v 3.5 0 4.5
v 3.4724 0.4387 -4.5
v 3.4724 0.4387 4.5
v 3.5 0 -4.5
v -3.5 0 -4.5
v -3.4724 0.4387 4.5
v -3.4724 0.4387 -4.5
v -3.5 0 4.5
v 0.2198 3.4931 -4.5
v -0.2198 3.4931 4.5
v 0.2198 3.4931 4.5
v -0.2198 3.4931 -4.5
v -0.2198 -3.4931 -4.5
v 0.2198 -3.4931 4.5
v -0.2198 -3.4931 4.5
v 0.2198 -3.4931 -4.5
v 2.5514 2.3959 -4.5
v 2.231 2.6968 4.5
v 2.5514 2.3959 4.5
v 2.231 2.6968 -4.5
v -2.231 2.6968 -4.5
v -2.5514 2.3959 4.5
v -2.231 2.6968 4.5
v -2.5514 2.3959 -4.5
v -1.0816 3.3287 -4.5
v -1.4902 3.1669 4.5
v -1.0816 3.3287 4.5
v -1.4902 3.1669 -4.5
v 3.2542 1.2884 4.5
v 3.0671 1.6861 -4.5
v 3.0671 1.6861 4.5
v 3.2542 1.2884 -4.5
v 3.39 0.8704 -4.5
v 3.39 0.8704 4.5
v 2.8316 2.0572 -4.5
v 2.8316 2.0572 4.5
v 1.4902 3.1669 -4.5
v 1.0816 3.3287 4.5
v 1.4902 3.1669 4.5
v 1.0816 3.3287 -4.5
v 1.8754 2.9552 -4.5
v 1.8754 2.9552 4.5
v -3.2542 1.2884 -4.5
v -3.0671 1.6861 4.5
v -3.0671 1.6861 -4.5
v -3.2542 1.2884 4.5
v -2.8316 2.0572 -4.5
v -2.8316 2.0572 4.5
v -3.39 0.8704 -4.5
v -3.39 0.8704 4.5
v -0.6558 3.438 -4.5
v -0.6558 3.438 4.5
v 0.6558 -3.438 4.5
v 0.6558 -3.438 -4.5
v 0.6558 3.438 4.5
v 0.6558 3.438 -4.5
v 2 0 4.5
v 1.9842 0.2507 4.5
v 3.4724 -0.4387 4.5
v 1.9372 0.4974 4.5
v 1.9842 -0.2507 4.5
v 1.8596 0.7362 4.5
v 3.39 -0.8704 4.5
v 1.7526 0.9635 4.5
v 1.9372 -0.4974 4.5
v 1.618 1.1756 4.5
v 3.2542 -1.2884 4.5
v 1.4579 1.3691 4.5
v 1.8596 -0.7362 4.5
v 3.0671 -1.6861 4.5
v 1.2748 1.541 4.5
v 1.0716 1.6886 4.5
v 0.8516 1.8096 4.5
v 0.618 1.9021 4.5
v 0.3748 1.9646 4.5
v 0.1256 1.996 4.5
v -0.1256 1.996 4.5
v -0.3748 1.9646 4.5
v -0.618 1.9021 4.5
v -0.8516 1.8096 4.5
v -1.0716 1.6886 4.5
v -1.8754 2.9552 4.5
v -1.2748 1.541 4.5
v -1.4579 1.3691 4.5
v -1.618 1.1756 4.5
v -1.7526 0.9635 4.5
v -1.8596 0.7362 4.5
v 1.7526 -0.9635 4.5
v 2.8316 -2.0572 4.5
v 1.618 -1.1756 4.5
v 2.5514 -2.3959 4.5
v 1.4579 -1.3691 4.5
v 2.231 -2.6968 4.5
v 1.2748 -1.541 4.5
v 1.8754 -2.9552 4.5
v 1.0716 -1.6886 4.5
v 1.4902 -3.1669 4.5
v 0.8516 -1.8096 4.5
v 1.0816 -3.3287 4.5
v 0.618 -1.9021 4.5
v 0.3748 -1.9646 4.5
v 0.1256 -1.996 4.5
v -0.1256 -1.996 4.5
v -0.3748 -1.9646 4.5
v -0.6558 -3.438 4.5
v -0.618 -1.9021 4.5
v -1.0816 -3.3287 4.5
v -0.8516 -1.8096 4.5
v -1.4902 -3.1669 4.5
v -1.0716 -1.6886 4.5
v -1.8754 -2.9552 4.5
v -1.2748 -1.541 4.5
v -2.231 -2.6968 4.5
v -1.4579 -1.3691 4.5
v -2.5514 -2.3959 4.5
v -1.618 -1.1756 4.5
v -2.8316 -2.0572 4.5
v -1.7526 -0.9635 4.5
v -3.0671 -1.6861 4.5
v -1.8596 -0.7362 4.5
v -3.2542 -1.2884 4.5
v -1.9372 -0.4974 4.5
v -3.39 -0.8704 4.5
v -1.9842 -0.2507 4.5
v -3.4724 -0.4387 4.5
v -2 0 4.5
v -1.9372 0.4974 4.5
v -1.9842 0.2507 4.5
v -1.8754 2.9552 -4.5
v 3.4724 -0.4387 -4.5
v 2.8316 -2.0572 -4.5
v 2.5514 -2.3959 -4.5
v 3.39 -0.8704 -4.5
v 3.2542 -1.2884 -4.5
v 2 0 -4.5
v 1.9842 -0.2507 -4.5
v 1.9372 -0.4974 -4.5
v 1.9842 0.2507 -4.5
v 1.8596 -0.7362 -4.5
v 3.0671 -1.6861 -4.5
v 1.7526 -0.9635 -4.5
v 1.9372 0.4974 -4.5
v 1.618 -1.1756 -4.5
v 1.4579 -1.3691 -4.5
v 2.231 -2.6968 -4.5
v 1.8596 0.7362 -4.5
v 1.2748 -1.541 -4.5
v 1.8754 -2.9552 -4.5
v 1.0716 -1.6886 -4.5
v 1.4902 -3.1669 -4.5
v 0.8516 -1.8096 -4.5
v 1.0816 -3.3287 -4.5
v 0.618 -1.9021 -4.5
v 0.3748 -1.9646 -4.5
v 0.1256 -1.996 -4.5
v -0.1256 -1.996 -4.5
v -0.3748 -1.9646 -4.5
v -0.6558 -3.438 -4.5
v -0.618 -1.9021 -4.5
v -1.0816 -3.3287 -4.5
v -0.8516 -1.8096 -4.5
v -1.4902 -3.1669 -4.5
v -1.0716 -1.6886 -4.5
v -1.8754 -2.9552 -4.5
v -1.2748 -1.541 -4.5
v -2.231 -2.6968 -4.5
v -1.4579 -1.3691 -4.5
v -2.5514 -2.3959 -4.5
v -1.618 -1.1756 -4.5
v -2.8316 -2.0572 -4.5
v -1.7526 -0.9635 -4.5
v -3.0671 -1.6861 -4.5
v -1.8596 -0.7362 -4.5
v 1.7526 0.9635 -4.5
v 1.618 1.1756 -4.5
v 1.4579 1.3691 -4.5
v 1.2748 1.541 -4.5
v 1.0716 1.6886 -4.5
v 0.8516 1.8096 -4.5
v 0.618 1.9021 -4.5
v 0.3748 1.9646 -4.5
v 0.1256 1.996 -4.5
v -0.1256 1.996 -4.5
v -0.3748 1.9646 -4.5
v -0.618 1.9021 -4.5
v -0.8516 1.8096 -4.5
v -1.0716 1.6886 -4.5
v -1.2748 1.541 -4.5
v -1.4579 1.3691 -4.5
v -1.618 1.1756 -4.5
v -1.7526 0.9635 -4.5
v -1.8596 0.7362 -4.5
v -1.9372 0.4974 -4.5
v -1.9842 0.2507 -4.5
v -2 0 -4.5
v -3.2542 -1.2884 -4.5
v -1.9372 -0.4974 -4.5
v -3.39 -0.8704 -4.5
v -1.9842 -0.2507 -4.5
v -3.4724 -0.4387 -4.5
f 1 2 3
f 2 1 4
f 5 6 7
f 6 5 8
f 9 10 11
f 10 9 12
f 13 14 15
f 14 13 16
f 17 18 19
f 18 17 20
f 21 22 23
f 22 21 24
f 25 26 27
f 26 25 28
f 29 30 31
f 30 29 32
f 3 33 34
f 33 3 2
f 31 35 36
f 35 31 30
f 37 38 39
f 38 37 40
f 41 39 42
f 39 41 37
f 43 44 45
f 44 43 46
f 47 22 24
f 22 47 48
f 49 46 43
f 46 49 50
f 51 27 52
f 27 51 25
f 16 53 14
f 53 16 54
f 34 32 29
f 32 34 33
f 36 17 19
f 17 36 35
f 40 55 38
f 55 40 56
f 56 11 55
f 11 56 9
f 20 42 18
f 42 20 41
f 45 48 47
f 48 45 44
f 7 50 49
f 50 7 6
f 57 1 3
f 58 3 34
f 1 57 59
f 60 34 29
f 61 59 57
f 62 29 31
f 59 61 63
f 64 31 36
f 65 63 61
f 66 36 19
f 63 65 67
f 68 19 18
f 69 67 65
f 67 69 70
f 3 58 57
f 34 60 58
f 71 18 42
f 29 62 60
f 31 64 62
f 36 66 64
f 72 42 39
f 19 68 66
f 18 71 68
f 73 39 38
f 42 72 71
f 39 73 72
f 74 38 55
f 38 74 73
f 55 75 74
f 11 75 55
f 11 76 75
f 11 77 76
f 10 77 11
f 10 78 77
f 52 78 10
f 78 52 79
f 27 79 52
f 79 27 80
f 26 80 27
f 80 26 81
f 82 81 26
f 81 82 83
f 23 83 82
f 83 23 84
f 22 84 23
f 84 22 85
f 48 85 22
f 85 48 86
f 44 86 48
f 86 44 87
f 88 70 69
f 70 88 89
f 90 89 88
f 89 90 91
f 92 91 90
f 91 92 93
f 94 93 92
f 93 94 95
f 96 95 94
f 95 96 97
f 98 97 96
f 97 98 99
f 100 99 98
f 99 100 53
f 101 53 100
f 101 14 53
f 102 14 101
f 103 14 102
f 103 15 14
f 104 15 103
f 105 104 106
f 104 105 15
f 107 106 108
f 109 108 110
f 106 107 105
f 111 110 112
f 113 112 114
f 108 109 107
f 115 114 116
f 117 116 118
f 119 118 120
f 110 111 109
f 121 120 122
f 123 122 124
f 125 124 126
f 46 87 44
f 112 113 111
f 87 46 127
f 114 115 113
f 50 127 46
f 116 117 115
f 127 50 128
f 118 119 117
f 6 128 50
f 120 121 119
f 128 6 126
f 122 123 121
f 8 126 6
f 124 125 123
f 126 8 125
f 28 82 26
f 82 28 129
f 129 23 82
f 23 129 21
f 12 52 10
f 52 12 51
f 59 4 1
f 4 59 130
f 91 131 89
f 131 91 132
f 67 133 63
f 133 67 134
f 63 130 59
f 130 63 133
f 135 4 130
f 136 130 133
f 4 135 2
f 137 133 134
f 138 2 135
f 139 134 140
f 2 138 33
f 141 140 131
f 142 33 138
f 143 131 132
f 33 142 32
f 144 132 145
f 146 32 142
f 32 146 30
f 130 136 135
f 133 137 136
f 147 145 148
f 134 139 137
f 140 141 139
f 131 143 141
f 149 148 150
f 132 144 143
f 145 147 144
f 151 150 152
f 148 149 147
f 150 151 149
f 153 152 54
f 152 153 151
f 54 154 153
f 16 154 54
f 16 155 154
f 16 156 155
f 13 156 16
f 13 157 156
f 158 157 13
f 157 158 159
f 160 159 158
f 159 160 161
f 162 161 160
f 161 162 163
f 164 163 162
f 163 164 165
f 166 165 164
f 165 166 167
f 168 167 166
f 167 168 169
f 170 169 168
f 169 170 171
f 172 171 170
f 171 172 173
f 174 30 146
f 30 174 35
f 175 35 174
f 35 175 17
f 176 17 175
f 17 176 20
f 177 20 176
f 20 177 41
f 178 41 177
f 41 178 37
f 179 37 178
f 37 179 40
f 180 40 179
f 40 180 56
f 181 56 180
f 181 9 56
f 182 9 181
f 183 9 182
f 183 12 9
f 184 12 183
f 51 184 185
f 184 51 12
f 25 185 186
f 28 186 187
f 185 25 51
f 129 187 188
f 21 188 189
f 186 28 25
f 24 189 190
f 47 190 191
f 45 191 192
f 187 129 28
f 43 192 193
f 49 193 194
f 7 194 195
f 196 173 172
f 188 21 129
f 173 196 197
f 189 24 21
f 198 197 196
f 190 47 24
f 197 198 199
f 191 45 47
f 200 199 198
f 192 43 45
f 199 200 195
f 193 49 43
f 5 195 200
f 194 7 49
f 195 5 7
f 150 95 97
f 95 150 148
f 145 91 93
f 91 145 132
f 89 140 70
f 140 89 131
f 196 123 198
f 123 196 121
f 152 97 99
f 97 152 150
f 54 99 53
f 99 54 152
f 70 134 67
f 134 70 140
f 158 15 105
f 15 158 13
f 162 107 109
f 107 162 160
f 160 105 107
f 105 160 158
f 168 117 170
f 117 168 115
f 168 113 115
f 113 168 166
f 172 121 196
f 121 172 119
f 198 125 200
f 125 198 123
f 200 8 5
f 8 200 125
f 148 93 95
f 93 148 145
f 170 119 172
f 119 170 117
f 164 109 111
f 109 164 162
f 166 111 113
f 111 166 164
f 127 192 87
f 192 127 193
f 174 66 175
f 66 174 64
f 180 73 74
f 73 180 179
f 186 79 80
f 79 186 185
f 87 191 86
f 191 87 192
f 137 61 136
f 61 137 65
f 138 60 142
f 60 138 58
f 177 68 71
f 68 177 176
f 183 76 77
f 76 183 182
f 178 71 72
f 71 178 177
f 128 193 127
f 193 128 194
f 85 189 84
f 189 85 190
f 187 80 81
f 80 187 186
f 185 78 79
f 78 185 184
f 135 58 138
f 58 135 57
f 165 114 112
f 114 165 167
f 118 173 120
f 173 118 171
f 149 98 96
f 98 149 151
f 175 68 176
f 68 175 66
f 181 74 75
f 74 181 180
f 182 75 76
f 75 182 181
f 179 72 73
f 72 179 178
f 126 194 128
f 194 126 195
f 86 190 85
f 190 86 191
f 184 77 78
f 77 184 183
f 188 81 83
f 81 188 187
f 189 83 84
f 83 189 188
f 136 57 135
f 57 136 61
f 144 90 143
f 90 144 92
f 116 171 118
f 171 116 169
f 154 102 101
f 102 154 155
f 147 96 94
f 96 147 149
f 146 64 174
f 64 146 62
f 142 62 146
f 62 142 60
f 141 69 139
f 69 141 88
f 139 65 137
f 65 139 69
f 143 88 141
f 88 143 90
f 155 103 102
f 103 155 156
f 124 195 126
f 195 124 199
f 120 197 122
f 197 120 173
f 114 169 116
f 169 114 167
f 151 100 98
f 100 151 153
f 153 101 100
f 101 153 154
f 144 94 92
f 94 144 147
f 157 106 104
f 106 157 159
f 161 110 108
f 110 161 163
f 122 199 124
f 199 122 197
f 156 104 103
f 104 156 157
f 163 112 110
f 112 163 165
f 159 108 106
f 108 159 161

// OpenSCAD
$fn = 50;


difference() {
	union() {
		translate(v = [0, 0, -4.5000000000]) {
			cylinder(h = 9, r = 3.5000000000);
		}
	}
	union() {
		translate(v = [0, 0, -100.0000000000]) {
			cylinder(h = 200, r = 2);
		}
	}
}
